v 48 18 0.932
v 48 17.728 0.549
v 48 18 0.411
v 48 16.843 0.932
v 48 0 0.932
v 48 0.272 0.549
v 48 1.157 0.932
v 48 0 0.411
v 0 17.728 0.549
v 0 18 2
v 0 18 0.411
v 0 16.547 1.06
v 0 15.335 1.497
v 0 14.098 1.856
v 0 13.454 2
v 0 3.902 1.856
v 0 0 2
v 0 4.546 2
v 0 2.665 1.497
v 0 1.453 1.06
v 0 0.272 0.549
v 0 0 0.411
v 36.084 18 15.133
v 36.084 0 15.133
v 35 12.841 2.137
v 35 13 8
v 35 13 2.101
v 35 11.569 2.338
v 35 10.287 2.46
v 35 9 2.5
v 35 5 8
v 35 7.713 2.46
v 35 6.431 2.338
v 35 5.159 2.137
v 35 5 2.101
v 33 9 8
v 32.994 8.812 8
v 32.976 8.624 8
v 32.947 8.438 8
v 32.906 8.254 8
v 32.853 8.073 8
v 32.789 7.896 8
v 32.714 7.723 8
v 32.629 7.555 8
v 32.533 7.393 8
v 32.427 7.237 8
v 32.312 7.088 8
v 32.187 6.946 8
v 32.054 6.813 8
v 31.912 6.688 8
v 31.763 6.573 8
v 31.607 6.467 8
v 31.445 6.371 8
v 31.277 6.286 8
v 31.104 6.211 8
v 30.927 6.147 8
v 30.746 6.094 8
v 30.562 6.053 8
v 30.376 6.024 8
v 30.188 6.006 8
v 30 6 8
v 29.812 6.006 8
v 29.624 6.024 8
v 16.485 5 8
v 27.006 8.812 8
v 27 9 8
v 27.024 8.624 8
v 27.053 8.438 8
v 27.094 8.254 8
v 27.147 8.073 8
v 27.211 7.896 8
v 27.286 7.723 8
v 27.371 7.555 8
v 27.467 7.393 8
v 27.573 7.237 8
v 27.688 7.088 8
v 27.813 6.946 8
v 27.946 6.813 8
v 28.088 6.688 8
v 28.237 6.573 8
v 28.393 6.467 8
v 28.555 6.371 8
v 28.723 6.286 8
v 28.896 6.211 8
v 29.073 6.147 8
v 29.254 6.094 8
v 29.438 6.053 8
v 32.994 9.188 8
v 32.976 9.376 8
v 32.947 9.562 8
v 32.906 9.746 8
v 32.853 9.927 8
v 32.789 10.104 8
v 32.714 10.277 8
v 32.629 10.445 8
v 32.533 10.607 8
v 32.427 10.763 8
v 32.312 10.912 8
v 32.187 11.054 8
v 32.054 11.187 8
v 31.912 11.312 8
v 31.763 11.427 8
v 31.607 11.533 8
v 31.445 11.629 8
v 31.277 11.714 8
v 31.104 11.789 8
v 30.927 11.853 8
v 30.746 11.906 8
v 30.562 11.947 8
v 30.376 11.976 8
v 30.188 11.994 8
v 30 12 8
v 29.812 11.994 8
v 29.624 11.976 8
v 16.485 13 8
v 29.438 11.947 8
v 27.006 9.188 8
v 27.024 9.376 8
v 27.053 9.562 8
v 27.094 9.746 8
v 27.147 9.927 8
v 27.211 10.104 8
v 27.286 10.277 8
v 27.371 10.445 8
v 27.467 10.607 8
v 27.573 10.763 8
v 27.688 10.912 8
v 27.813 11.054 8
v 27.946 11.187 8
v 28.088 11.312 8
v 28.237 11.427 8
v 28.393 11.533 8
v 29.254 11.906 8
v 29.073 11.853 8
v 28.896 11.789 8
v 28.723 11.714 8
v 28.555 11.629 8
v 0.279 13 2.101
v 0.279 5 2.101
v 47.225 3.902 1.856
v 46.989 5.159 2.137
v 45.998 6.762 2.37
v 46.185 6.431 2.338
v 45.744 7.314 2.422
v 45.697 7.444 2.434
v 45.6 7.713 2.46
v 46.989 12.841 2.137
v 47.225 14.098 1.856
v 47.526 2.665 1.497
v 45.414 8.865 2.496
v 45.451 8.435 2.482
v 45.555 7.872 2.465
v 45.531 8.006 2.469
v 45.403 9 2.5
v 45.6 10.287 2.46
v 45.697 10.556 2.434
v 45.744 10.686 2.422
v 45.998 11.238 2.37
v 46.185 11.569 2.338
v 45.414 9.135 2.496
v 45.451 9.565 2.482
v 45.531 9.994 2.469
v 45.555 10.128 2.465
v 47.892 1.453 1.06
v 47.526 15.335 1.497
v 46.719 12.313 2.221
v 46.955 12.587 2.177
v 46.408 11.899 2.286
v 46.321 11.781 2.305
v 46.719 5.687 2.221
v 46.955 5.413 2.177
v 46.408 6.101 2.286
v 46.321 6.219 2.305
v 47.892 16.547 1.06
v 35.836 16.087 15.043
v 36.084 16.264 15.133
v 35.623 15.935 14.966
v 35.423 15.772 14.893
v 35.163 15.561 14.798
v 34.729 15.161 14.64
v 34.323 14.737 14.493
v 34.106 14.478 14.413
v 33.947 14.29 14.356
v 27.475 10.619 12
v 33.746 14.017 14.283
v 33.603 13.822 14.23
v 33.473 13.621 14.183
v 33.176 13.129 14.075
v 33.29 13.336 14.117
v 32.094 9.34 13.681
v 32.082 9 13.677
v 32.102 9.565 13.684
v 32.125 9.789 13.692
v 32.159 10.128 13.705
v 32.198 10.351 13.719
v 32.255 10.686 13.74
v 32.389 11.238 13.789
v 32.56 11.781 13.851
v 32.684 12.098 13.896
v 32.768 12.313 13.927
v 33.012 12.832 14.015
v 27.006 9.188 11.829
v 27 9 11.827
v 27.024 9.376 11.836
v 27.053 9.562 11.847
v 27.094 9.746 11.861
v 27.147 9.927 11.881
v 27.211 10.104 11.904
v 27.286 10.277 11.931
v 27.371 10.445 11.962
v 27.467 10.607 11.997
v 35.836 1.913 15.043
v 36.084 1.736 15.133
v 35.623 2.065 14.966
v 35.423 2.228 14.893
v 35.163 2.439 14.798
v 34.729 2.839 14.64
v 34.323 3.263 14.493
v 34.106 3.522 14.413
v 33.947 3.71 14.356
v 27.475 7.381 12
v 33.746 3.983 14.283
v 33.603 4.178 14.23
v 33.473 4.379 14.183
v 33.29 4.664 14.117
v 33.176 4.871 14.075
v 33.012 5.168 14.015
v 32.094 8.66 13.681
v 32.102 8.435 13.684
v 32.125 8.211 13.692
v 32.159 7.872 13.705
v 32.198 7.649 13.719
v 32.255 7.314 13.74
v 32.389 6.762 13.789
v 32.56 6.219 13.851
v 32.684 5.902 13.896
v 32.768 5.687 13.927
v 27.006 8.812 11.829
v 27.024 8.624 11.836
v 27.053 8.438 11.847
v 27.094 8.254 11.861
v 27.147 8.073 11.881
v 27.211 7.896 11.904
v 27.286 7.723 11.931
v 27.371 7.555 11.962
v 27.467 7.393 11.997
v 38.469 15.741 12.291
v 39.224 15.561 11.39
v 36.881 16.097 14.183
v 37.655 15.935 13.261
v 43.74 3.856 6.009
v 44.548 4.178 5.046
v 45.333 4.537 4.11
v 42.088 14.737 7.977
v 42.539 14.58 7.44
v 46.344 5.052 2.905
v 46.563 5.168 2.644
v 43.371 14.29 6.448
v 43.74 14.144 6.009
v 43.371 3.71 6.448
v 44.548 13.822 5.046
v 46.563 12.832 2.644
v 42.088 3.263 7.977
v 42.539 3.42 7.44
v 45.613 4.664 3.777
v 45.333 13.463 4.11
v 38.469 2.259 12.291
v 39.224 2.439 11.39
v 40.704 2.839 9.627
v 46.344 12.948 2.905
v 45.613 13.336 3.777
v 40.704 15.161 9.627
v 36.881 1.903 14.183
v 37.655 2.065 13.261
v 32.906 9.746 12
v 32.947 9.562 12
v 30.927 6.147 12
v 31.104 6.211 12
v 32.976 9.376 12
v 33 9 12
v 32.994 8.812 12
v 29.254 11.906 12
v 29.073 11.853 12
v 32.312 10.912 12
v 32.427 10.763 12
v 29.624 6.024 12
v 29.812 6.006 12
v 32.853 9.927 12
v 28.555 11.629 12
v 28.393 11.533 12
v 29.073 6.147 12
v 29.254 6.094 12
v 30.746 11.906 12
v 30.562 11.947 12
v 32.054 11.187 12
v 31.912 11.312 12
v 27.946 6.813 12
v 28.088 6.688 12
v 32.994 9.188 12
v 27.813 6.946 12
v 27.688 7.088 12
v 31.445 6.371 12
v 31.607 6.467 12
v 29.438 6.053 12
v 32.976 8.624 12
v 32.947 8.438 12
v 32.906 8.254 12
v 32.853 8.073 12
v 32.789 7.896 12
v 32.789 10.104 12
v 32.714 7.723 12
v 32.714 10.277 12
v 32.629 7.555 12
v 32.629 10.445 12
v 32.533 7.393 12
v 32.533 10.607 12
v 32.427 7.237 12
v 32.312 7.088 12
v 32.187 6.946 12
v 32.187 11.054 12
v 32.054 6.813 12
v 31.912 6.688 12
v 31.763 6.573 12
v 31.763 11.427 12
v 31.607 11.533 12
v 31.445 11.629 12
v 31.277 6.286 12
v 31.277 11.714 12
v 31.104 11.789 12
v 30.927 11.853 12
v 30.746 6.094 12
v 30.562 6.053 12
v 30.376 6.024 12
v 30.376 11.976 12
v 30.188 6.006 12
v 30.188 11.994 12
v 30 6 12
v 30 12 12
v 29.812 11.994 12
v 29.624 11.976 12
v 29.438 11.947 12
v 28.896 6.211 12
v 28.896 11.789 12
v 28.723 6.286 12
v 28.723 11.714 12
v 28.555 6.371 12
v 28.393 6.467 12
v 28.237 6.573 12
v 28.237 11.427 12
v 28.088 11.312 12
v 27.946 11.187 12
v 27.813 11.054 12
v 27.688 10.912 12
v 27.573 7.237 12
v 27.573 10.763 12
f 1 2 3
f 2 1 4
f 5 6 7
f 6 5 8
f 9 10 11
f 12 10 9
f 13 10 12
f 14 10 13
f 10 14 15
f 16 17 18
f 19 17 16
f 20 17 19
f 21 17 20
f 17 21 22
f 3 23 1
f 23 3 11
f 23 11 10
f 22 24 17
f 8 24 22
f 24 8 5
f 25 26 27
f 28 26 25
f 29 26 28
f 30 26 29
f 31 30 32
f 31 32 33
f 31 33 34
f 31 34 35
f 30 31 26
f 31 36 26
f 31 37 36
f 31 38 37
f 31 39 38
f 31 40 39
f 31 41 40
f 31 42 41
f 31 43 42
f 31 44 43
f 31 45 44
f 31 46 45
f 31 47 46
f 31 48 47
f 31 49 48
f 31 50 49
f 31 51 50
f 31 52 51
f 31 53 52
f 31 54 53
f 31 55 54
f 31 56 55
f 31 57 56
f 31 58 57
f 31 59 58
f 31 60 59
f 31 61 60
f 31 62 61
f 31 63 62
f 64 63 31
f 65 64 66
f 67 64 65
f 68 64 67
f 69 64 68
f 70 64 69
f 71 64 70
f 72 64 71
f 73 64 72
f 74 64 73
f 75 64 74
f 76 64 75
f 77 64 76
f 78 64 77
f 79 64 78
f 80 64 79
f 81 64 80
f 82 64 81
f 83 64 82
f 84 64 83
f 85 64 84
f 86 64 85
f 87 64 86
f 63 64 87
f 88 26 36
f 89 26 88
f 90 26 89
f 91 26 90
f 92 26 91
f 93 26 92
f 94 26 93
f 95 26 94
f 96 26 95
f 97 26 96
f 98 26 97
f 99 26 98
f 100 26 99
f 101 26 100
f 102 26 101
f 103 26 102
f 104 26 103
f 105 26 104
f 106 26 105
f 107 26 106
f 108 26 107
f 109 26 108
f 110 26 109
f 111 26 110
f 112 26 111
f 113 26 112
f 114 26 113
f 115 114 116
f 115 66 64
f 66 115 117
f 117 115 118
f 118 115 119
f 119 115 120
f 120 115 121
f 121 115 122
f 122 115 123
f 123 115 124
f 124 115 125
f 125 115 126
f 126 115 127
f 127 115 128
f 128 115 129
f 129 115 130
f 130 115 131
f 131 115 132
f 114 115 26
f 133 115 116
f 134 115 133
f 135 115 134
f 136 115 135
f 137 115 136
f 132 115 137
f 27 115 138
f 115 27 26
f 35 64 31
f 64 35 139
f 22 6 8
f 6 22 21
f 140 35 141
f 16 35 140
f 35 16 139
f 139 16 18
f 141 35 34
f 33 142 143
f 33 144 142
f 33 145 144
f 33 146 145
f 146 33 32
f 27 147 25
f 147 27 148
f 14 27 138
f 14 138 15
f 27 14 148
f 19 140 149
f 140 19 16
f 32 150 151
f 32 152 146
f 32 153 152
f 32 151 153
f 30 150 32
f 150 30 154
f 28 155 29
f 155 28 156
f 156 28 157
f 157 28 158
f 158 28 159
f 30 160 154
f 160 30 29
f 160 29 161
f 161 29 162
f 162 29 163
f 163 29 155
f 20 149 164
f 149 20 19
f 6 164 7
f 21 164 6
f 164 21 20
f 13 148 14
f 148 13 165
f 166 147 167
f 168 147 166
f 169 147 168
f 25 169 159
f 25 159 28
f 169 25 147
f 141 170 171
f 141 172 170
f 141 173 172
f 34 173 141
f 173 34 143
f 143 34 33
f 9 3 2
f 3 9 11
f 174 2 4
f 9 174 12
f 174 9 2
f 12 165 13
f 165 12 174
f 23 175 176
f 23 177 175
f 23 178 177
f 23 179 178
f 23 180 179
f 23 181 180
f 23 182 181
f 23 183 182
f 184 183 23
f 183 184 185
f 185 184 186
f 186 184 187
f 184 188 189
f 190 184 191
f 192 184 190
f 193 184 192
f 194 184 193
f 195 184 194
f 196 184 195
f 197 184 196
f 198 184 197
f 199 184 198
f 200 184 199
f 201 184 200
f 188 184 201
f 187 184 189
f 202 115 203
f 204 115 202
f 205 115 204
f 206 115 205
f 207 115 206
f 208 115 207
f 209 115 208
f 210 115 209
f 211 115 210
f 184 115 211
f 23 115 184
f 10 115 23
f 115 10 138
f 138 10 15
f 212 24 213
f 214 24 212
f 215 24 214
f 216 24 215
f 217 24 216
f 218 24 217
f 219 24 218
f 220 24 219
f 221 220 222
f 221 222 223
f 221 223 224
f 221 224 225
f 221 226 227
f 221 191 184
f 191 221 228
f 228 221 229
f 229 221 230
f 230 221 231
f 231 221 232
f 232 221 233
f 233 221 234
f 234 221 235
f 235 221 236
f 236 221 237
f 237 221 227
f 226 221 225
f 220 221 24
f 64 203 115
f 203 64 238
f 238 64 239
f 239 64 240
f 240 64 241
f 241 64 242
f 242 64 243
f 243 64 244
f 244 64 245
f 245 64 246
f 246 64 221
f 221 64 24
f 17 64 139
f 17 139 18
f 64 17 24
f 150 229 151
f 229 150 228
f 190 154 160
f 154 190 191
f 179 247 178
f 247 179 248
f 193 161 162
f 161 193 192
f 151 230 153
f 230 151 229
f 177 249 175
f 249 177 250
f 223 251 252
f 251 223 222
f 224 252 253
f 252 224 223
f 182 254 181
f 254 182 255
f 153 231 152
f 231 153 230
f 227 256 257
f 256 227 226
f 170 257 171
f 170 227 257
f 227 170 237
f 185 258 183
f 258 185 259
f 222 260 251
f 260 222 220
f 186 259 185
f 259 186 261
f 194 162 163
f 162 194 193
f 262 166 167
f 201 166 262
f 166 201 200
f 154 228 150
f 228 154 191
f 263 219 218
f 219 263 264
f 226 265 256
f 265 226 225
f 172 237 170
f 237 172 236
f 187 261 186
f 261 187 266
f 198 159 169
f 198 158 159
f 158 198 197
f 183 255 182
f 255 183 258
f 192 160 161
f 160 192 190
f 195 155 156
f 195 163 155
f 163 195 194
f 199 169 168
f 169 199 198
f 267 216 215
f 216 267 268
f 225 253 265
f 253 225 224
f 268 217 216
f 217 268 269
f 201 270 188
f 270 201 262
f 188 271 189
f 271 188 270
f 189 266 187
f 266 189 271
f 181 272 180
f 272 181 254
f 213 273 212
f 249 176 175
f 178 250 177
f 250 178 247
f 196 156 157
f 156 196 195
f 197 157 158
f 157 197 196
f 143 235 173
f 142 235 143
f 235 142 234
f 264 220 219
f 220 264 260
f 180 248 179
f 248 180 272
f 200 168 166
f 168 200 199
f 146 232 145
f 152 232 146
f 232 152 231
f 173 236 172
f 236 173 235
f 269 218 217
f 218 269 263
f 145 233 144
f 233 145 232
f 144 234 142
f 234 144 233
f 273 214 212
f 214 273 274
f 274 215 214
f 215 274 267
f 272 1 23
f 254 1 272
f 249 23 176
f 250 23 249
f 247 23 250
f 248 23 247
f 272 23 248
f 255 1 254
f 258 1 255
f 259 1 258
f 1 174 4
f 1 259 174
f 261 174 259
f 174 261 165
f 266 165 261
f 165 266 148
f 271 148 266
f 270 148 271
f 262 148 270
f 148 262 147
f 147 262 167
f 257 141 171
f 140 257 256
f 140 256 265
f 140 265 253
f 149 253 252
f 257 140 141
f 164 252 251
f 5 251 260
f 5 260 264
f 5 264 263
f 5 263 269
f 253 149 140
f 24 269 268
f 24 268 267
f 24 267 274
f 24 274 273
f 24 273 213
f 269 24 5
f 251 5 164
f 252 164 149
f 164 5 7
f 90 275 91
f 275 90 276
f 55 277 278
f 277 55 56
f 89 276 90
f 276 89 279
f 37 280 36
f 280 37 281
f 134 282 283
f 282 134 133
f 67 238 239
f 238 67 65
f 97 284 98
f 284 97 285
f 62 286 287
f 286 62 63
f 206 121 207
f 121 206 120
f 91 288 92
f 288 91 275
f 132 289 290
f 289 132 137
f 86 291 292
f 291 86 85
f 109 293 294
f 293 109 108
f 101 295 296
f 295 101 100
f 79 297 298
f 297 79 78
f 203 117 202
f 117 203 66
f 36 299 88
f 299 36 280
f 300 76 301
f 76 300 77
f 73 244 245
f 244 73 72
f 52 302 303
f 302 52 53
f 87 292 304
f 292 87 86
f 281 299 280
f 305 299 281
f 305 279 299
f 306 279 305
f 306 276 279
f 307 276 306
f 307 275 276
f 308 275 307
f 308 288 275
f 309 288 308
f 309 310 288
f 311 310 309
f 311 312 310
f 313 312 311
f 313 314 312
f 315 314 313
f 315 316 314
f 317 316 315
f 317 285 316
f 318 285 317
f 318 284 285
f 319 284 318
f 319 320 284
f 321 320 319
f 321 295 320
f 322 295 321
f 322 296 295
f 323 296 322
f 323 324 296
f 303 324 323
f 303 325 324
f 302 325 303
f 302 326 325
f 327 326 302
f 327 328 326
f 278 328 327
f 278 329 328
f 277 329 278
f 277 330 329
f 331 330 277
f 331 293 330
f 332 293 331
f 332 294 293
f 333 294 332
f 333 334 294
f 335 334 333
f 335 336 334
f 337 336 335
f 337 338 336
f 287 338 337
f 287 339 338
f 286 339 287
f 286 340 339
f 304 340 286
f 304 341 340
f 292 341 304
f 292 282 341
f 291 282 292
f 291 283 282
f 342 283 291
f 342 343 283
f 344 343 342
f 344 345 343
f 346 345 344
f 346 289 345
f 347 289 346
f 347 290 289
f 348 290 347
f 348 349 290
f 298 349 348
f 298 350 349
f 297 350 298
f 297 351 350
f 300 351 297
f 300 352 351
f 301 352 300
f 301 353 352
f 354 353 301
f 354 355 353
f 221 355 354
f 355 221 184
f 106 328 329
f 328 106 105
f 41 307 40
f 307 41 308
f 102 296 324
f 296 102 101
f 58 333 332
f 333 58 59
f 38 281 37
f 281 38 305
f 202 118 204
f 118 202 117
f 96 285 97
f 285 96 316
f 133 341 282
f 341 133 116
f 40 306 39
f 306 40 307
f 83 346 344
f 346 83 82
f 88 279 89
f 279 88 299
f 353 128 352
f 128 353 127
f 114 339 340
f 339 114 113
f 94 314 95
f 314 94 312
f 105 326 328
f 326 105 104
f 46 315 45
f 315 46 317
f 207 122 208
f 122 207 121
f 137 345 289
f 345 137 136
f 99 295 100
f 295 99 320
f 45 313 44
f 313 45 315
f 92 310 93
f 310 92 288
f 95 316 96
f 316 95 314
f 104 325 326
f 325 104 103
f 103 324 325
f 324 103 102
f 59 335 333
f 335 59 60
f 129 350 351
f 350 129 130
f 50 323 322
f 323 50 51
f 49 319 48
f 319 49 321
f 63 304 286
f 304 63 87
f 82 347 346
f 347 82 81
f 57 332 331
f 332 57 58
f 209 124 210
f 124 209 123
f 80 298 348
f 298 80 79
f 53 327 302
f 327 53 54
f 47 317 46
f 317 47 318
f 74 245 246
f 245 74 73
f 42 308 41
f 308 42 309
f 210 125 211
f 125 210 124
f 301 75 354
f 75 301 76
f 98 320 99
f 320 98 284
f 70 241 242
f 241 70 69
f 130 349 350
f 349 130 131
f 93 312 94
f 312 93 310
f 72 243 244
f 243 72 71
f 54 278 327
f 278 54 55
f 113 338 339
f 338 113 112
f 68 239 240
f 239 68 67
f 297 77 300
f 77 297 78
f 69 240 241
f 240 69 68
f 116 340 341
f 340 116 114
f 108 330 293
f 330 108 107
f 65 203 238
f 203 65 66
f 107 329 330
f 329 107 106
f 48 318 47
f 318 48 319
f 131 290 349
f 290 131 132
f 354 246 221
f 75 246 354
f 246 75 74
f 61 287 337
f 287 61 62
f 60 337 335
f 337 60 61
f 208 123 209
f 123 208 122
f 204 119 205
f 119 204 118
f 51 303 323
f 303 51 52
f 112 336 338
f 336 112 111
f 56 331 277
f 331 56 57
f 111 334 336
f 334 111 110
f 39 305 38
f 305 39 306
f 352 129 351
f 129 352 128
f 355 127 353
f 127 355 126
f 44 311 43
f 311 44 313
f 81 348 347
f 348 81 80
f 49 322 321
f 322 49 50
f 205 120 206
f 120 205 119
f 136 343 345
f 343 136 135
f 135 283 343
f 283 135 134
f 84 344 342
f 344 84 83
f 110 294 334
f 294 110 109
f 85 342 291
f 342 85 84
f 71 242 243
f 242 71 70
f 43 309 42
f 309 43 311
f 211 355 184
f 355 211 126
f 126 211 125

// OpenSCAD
$fn = 100;


width = 48;
depth = 18;
height = 20;

rotate_y_long = -20;
rotate_y_short_cylinder = -50;
rotate_y_short_cube = 50;

top_width = 35;
top_depth = 8;
top_height = 8;

tube_diameter = 41;

hole_length = 11;
hole_diameter = 6;

difference() {
    cube([width, depth, height]);
    translate([0, depth/2 - top_depth / 2, 0]) cube([top_width, top_depth, top_height]);
    translate([0, depth / 2, -18]) rotate([0, 90, 0]) cylinder(d=tube_diameter, width);
    translate([0, 0, 2]) rotate([0, rotate_y_long, 0]) cube([2 * width, depth, height]);
    translate([width + 12, depth / 2, 2]) rotate([0, rotate_y_short_cylinder, 0]) cylinder(d=18, width);
    translate([width - 16, 0, height]) rotate([0, rotate_y_short_cube, 0]) cube([2 * width, depth, height]);
    translate([width - 18, depth/2, 1]) cylinder(d=hole_diameter, hole_length);
}
